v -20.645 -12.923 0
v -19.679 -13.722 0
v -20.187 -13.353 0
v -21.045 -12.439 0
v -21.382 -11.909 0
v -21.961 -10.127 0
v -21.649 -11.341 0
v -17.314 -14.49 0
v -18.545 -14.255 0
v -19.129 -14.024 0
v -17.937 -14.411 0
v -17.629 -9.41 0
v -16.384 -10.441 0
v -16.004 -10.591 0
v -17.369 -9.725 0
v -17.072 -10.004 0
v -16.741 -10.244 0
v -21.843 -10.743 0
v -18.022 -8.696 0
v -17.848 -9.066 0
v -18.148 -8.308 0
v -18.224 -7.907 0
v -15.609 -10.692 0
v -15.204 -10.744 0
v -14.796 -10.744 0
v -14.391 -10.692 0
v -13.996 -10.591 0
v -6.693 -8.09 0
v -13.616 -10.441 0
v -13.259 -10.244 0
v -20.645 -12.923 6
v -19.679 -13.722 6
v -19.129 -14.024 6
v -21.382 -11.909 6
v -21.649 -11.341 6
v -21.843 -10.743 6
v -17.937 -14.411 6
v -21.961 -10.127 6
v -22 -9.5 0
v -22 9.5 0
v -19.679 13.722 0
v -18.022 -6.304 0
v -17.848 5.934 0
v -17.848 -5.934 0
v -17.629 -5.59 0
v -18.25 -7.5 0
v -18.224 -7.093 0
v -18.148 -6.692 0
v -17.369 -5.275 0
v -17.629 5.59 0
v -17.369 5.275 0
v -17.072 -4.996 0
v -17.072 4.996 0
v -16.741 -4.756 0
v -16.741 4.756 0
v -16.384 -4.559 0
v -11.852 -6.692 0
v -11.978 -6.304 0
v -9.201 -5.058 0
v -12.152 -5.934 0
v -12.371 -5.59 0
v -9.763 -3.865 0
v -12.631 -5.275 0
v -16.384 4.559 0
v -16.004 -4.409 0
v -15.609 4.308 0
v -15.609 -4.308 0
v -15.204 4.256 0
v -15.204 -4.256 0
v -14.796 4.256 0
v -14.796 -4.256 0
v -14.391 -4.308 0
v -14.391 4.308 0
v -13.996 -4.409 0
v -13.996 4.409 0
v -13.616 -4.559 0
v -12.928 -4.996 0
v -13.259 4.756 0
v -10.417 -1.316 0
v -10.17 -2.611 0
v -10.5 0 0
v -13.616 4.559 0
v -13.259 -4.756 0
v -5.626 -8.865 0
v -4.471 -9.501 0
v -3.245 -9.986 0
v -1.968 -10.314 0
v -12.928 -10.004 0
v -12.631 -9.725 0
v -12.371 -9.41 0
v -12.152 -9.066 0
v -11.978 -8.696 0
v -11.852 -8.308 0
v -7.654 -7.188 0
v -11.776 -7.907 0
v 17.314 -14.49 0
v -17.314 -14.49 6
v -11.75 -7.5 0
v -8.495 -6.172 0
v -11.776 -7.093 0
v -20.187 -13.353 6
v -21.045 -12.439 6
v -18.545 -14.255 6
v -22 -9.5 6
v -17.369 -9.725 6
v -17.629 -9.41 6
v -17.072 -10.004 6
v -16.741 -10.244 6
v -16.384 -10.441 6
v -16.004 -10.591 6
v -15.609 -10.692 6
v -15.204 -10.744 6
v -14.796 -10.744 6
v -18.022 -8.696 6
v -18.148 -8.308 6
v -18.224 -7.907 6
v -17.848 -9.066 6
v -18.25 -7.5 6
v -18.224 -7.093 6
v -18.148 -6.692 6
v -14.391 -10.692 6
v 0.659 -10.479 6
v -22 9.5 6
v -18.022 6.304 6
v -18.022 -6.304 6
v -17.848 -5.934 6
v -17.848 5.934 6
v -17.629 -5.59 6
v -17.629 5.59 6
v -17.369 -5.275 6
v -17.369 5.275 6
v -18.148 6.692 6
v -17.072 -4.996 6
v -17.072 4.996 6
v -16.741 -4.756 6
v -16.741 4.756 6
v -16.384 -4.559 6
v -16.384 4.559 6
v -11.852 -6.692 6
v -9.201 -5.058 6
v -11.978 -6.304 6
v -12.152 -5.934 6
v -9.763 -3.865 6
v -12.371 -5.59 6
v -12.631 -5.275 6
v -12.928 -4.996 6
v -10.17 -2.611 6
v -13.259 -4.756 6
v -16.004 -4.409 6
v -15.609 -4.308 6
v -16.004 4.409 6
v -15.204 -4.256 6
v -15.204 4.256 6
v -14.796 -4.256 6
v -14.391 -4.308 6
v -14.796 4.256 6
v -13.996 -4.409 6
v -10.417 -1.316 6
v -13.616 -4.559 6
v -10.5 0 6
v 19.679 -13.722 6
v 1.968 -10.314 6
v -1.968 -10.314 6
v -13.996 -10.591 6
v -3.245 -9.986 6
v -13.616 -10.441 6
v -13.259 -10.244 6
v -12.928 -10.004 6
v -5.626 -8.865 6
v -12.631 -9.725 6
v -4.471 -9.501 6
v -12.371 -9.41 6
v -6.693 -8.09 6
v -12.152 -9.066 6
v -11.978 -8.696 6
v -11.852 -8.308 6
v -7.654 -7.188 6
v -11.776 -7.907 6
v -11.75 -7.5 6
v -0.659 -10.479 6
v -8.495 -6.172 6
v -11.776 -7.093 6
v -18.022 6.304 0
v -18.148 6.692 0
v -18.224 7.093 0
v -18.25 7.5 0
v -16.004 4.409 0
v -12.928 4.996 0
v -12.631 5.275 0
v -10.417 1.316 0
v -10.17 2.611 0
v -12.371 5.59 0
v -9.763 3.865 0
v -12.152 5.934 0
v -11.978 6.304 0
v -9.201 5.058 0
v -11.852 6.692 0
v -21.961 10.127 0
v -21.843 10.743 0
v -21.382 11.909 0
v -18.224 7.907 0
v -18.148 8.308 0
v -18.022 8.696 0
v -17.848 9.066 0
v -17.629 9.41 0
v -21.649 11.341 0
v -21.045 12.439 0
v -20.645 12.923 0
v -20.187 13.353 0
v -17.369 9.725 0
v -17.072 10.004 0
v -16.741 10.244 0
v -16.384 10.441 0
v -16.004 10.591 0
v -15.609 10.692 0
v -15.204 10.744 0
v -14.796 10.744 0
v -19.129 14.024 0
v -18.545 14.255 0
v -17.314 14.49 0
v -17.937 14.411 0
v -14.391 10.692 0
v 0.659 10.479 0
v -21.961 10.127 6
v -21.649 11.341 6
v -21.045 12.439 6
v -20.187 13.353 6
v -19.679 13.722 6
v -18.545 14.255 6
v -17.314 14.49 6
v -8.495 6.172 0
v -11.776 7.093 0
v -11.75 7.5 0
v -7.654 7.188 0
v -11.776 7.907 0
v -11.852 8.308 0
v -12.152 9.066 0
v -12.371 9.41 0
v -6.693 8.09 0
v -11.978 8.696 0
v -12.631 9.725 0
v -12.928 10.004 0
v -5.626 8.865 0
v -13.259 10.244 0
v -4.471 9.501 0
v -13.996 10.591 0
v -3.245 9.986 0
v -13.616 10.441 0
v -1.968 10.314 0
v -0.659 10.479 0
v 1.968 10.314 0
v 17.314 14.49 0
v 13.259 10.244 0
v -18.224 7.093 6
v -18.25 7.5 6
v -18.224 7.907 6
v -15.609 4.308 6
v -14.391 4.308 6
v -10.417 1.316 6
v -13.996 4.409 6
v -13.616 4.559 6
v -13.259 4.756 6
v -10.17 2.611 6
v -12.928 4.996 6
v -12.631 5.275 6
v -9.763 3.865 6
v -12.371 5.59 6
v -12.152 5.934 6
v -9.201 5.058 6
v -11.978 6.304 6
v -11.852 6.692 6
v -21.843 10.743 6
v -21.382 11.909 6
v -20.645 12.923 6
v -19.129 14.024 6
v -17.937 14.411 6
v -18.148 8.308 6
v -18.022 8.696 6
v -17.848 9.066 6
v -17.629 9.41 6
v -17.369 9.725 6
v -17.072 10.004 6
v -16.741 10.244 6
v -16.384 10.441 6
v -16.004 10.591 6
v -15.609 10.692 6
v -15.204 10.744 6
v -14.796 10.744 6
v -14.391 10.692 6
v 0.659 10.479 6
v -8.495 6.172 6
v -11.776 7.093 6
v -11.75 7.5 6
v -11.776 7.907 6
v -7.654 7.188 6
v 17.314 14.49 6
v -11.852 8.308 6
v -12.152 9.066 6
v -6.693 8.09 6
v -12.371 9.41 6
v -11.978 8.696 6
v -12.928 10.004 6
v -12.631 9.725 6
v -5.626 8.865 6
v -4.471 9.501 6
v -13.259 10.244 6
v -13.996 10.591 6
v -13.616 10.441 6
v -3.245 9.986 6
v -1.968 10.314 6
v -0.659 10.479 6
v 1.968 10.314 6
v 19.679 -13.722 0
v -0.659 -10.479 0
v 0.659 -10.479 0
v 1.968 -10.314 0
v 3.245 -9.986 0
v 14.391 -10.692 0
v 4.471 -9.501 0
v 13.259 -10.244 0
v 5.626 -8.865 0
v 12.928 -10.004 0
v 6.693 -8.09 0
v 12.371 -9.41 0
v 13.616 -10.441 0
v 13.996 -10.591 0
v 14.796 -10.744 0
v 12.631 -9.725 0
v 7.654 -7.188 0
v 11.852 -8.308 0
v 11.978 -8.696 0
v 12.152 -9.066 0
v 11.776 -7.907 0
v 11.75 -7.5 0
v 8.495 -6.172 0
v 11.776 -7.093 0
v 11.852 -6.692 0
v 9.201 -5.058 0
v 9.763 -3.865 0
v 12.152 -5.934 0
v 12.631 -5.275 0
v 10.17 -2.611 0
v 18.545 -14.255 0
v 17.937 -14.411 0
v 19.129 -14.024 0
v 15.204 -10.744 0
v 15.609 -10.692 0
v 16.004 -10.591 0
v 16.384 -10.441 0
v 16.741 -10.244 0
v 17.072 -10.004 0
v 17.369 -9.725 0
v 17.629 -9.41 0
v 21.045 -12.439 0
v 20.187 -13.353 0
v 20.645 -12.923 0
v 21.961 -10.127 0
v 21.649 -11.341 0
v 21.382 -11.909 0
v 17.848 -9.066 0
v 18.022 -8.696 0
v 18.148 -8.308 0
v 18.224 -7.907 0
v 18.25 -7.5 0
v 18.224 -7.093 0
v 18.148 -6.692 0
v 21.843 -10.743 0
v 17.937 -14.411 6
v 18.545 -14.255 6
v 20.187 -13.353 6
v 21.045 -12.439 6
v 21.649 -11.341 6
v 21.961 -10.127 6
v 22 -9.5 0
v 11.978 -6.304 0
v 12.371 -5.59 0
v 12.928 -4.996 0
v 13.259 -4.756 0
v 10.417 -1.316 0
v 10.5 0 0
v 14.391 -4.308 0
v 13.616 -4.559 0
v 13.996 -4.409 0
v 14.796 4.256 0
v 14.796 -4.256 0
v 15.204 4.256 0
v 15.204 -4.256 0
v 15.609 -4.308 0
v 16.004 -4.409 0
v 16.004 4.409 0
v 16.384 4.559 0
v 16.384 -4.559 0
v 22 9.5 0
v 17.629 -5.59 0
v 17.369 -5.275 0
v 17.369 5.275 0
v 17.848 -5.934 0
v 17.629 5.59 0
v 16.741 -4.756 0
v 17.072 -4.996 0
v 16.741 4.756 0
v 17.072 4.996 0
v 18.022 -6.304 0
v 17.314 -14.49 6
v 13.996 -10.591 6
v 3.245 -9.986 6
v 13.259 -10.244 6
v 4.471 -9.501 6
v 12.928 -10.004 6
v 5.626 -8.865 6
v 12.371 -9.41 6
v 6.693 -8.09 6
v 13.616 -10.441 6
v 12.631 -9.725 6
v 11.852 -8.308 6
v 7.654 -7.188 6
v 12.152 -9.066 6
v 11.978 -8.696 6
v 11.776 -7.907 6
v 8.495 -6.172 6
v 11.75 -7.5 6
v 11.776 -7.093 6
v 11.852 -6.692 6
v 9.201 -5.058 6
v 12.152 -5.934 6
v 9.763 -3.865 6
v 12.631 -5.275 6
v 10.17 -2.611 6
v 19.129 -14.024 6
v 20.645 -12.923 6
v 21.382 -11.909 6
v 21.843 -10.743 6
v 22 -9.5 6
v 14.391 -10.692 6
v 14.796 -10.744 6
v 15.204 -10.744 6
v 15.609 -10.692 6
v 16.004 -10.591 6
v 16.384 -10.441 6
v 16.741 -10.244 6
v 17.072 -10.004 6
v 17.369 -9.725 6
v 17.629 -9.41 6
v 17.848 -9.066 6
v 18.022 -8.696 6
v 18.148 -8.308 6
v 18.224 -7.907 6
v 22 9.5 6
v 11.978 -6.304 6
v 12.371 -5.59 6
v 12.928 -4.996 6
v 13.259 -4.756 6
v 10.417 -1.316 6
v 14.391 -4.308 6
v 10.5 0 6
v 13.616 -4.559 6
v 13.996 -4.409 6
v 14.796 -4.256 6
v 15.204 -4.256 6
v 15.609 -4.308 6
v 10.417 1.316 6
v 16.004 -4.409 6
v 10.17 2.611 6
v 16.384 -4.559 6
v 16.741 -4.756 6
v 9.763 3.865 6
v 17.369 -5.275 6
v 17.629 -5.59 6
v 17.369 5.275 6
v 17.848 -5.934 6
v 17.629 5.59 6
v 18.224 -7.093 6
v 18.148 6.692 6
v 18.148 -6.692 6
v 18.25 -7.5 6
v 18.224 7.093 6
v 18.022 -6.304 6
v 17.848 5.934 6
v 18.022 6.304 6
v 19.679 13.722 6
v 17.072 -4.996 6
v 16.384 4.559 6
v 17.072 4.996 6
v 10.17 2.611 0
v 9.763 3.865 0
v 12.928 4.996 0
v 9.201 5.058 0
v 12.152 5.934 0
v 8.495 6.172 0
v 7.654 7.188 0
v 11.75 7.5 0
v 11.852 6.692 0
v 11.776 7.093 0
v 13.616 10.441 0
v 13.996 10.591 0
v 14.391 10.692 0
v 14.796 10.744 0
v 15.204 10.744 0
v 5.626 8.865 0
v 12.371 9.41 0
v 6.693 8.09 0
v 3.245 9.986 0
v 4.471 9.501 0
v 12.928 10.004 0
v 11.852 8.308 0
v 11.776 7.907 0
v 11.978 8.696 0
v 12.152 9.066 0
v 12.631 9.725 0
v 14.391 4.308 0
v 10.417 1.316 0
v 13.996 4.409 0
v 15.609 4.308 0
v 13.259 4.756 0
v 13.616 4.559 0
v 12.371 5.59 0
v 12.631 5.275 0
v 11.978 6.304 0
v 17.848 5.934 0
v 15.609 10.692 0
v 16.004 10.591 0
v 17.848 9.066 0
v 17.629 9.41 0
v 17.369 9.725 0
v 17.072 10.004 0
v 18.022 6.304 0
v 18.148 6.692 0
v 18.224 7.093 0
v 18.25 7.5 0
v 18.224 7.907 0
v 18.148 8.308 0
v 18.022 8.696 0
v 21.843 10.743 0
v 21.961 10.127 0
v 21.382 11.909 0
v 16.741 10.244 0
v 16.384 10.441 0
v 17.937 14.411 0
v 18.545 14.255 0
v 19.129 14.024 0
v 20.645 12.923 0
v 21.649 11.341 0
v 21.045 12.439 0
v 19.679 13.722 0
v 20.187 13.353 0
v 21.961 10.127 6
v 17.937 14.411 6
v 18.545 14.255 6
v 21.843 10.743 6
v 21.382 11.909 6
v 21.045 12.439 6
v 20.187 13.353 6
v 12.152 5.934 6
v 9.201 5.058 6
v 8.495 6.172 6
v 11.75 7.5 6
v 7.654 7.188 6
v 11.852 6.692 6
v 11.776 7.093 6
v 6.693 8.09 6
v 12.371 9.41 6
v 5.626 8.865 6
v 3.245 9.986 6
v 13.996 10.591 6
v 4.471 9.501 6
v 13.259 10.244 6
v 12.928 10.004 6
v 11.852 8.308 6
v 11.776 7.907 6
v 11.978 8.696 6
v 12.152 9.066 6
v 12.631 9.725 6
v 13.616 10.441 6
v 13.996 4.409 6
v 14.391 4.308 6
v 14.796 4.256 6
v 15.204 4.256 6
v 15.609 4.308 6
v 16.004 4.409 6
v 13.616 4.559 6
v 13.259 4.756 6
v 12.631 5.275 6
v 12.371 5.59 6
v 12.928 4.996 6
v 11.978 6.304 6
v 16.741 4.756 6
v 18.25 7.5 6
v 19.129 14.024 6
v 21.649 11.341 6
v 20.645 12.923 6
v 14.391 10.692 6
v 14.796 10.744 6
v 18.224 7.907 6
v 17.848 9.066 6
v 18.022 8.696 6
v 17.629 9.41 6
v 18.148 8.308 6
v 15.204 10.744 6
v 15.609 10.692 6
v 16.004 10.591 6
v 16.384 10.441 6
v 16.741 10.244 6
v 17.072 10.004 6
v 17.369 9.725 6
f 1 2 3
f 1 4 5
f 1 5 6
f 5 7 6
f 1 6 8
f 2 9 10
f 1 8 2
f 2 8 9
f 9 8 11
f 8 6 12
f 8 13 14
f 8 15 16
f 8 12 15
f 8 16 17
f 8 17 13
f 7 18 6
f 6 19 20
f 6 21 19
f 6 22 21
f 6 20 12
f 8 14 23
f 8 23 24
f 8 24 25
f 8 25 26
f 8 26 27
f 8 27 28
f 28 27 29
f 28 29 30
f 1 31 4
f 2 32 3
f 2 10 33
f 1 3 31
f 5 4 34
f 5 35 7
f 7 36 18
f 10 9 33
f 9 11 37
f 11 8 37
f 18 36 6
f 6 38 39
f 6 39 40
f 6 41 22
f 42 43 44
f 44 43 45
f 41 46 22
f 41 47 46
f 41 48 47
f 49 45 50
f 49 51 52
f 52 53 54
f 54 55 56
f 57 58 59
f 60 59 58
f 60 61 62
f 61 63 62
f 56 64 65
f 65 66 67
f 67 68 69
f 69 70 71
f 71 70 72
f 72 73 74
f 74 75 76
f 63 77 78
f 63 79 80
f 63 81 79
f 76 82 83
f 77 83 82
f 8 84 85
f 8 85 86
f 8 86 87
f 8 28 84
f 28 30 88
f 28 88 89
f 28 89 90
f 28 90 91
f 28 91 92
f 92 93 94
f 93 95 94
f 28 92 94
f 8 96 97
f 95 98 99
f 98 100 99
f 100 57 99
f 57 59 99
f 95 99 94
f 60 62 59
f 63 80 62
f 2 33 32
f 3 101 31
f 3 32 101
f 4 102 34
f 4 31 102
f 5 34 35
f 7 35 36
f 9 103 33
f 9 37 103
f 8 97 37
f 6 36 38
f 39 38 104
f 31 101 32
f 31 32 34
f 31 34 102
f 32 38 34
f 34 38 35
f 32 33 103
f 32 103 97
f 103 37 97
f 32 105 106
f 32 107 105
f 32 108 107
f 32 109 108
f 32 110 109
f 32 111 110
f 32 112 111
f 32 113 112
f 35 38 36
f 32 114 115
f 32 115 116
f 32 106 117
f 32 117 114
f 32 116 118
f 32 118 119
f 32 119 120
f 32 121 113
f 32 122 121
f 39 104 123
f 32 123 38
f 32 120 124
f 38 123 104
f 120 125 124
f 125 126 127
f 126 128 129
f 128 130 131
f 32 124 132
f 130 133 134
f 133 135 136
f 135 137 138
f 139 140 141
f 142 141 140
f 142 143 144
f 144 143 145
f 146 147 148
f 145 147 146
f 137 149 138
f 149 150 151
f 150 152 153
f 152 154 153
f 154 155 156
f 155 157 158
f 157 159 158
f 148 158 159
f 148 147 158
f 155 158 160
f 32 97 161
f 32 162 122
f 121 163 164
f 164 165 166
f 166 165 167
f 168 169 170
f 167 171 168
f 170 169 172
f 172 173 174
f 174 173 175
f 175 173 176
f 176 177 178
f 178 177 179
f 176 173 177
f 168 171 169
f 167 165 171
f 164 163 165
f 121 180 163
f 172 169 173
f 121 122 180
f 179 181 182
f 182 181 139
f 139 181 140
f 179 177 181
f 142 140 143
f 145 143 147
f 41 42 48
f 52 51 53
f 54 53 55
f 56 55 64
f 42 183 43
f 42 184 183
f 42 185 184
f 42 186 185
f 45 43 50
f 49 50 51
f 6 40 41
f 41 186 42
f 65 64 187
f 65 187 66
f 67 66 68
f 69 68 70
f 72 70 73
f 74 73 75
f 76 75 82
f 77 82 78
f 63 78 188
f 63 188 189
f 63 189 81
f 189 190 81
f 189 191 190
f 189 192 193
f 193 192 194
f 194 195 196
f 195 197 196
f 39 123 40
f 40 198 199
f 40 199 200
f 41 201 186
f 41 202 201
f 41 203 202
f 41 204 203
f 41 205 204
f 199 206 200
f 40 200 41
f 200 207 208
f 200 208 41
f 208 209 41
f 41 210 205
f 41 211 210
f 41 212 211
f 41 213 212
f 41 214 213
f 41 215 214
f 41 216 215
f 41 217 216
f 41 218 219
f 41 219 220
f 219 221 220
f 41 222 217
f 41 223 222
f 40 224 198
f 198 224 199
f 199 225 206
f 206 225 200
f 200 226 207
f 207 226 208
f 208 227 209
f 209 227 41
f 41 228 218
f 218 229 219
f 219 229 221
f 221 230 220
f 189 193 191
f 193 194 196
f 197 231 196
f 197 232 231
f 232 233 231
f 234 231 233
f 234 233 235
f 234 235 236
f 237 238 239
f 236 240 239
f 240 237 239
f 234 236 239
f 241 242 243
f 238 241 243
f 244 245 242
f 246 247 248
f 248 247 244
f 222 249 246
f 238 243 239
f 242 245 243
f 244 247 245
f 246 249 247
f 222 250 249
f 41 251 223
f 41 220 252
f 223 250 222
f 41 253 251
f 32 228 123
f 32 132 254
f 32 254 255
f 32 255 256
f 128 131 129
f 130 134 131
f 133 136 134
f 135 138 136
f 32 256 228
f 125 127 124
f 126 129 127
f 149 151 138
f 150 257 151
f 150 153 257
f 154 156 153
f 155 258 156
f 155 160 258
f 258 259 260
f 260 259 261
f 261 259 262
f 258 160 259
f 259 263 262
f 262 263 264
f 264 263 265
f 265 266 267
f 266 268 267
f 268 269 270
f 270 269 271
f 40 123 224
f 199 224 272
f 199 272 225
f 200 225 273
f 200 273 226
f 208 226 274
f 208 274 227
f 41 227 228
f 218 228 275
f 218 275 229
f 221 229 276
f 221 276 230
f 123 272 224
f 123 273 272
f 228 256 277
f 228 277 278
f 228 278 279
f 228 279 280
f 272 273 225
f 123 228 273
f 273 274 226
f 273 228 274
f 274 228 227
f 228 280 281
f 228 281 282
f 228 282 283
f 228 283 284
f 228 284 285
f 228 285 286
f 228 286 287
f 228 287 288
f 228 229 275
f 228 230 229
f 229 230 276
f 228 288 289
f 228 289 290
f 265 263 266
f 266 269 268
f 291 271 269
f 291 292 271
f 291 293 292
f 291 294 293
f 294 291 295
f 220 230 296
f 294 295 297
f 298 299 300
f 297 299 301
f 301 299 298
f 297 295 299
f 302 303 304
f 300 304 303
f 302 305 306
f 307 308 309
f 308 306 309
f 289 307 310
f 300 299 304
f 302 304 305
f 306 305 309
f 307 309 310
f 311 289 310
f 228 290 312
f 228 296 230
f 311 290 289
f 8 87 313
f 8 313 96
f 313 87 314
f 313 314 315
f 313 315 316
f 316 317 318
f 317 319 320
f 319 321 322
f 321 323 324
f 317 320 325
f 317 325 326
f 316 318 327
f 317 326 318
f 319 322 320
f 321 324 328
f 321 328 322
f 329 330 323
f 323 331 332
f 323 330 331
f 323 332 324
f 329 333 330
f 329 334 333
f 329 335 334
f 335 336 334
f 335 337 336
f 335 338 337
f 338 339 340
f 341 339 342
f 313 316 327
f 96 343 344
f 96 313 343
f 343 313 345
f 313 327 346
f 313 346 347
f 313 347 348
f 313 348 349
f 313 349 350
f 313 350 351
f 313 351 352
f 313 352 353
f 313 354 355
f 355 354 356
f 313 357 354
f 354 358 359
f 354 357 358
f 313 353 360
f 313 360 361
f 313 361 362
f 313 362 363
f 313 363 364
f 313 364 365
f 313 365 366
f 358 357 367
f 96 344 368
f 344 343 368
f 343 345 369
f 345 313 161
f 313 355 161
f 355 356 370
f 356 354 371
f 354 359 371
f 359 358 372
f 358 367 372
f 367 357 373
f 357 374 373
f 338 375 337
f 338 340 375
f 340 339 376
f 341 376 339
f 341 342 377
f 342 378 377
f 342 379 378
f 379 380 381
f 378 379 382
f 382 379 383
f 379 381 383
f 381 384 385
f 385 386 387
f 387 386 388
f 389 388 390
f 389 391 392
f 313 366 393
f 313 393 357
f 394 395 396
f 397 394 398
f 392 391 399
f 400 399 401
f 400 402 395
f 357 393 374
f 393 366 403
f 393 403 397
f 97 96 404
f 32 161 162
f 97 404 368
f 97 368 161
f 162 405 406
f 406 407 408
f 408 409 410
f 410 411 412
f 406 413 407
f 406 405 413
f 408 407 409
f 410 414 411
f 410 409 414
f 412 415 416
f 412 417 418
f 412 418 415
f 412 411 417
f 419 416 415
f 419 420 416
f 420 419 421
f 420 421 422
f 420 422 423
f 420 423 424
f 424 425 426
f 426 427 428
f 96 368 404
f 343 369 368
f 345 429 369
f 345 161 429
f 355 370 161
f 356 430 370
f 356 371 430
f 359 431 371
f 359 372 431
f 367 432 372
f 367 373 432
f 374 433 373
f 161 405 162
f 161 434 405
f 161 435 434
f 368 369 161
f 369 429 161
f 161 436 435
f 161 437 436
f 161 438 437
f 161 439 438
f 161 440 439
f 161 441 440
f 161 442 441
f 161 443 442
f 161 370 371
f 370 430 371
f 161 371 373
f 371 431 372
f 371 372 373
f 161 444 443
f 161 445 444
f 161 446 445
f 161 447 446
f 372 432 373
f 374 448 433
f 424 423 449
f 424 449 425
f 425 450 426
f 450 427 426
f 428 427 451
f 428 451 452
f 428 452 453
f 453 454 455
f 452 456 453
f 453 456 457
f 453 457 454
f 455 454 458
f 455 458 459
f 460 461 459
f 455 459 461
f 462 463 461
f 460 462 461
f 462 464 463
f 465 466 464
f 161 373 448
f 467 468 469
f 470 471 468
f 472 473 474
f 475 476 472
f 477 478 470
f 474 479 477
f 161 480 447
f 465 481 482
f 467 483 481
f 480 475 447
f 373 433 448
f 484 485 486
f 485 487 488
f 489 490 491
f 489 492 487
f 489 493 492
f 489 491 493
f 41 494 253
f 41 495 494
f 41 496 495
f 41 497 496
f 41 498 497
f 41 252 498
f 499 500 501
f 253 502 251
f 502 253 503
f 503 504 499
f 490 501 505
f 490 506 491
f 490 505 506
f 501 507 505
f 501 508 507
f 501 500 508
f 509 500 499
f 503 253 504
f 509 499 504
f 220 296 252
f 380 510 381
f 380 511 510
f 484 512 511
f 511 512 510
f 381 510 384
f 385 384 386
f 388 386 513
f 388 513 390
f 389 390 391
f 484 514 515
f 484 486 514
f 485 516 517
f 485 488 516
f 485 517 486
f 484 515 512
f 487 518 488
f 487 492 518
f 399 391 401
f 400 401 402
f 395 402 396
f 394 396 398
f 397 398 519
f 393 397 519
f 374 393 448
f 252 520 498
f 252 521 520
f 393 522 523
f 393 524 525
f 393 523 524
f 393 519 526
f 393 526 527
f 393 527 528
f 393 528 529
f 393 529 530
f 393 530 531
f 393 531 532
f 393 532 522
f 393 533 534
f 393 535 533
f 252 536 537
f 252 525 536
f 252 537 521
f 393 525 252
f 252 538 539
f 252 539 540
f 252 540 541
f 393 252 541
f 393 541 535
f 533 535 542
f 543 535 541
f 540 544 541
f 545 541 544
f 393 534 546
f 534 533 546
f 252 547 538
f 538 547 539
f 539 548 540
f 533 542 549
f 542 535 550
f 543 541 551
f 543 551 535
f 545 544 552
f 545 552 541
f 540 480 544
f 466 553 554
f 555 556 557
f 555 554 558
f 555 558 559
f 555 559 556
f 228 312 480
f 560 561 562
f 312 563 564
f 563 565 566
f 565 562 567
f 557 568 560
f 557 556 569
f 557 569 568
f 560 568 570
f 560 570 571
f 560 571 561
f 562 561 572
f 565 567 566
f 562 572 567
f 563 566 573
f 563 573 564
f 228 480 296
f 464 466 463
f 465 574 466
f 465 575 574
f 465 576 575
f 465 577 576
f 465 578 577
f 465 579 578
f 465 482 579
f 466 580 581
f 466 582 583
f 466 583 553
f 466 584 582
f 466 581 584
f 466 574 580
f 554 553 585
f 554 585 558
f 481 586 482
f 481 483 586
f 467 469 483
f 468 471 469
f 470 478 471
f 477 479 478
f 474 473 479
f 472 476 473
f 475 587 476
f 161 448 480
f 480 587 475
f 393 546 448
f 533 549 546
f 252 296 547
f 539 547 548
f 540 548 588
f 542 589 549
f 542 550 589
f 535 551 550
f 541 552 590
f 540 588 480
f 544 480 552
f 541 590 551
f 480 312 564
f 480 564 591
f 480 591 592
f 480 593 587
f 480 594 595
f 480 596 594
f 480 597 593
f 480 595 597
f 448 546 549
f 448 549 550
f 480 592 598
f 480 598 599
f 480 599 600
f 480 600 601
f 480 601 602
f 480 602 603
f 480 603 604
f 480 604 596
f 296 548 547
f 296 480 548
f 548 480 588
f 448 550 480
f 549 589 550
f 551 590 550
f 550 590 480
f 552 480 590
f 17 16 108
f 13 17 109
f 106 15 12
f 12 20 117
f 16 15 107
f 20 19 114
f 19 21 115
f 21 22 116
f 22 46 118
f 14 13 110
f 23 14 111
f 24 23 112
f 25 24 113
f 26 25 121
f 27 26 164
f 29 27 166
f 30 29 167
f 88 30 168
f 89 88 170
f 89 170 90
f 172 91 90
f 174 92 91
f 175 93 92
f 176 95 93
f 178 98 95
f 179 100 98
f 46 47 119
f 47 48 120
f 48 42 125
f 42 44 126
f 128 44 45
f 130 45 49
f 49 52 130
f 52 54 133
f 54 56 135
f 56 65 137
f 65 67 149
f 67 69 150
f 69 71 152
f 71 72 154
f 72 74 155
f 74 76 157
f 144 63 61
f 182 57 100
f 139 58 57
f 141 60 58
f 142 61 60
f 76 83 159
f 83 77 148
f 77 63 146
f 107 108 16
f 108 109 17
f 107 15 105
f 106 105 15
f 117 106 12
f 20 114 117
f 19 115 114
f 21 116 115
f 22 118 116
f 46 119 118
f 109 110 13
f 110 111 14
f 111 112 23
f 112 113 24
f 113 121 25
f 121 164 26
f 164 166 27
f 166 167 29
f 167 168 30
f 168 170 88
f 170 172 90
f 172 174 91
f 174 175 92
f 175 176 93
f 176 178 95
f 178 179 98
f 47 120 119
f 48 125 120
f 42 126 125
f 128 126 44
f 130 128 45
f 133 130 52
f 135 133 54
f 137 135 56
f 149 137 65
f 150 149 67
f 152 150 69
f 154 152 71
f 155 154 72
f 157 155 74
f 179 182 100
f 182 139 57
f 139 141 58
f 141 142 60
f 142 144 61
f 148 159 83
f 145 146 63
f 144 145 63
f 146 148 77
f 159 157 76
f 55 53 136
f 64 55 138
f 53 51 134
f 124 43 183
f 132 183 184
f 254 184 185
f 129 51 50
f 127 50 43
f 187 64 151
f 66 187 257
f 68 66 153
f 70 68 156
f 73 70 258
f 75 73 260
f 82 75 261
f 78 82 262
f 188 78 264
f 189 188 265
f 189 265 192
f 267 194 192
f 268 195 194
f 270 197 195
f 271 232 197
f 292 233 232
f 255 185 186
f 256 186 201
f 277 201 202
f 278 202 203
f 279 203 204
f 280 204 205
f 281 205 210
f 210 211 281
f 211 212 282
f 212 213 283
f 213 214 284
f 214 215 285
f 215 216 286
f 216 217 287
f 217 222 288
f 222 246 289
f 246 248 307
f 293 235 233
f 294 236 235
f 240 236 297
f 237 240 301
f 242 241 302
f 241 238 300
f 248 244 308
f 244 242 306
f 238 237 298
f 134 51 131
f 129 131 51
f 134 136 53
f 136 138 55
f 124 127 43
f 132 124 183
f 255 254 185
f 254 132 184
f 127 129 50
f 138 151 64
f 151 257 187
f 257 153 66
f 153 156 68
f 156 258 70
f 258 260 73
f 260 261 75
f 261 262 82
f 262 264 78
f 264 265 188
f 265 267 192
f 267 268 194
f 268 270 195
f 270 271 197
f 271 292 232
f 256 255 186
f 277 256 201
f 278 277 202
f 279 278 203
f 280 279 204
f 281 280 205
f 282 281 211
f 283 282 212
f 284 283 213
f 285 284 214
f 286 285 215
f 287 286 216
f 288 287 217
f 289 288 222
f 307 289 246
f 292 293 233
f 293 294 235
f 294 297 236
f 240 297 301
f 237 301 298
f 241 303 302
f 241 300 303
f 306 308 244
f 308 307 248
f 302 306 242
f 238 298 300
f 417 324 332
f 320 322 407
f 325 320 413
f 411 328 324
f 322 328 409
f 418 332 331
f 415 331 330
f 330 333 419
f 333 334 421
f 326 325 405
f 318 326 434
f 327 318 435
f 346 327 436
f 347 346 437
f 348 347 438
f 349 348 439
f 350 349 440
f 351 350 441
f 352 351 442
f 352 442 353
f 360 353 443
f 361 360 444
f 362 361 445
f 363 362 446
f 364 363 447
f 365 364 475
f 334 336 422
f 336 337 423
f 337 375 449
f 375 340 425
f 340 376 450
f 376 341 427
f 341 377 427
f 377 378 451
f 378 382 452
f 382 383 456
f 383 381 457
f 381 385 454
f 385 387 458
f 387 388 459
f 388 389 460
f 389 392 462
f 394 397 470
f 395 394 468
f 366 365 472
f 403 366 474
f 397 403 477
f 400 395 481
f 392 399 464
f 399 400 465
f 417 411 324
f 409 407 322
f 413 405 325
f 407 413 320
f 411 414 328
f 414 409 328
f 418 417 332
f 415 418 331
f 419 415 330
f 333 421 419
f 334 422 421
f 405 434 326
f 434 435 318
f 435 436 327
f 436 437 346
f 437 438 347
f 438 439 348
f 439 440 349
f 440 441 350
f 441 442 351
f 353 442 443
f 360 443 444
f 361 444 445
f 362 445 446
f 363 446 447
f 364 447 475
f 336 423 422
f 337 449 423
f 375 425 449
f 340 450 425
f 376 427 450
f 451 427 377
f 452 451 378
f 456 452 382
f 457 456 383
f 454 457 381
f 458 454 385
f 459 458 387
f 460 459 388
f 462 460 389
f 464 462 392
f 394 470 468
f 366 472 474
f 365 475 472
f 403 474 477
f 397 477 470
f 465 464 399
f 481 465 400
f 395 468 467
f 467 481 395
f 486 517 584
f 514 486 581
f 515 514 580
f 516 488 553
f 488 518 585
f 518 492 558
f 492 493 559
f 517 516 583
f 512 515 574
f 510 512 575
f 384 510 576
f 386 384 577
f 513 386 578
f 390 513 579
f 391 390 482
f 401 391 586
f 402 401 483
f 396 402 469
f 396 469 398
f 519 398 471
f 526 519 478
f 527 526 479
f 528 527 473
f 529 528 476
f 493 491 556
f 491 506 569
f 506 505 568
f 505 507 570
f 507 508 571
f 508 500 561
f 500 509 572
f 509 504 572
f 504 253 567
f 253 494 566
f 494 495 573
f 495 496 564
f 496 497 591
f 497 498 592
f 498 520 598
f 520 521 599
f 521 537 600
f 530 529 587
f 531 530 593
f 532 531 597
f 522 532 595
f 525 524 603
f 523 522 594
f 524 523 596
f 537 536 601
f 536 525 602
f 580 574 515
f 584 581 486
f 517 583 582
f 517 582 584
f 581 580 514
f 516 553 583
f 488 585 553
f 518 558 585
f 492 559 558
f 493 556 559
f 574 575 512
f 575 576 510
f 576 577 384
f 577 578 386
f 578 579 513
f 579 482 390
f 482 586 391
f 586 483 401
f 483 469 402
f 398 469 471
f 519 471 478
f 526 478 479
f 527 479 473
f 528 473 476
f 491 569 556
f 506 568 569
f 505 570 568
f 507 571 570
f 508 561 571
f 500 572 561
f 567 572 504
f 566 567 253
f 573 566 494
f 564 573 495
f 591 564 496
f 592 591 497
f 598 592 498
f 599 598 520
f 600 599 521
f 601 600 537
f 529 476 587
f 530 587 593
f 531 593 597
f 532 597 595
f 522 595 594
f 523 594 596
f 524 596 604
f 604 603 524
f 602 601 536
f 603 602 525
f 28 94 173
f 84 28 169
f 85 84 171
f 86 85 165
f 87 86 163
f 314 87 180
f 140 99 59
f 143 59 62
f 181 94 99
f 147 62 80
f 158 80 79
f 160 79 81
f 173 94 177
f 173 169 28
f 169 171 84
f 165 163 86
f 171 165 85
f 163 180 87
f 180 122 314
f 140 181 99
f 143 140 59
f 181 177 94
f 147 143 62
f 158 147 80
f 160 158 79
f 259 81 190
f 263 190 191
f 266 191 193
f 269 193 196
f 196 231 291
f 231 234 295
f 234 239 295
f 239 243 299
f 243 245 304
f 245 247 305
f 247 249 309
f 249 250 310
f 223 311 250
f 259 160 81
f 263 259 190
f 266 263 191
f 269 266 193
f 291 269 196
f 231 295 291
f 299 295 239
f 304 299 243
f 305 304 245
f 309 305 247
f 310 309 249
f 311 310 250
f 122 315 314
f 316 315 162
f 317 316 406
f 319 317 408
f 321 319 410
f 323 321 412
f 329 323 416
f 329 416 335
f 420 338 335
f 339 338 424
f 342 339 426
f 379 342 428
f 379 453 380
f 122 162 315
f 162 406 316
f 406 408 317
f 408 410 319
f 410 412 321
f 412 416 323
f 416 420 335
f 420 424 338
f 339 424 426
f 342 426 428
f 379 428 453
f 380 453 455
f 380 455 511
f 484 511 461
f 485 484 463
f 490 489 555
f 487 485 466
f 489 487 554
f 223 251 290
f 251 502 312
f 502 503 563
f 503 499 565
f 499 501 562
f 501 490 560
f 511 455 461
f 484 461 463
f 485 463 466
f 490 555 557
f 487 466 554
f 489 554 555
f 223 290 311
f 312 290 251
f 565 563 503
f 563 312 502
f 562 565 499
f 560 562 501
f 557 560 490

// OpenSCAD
$fn = 50;

difference() {
	union() {
		hull() {
			translate(v = [-17.0, 9.5, 0]) {
				cylinder(h = 6, r = 5);
			}
			translate(v = [17.0, 9.5, 0]) {
				cylinder(h = 6, r = 5);
			}
			translate(v = [-17.0, -9.5, 0]) {
				cylinder(h = 6, r = 5);
			}
			translate(v = [17.0, -9.5, 0]) {
				cylinder(h = 6, r = 5);
			}
		}
	}
	union() {
		translate(v = [-15.0, -7.5, 0]) {
			cylinder(h = 6, r = 3.25);
		}
		translate(v = [-15.0, 7.5, 0]) {
			cylinder(h = 6, r = 3.25);
		}
		translate(v = [15.0, -7.5, 0]) {
			cylinder(h = 6, r = 3.25);
		}
		translate(v = [15.0, 7.5, 0]) {
			cylinder(h = 6, r = 3.25);
		}
		cylinder(h = 6, r = 10.5);
	}
}
